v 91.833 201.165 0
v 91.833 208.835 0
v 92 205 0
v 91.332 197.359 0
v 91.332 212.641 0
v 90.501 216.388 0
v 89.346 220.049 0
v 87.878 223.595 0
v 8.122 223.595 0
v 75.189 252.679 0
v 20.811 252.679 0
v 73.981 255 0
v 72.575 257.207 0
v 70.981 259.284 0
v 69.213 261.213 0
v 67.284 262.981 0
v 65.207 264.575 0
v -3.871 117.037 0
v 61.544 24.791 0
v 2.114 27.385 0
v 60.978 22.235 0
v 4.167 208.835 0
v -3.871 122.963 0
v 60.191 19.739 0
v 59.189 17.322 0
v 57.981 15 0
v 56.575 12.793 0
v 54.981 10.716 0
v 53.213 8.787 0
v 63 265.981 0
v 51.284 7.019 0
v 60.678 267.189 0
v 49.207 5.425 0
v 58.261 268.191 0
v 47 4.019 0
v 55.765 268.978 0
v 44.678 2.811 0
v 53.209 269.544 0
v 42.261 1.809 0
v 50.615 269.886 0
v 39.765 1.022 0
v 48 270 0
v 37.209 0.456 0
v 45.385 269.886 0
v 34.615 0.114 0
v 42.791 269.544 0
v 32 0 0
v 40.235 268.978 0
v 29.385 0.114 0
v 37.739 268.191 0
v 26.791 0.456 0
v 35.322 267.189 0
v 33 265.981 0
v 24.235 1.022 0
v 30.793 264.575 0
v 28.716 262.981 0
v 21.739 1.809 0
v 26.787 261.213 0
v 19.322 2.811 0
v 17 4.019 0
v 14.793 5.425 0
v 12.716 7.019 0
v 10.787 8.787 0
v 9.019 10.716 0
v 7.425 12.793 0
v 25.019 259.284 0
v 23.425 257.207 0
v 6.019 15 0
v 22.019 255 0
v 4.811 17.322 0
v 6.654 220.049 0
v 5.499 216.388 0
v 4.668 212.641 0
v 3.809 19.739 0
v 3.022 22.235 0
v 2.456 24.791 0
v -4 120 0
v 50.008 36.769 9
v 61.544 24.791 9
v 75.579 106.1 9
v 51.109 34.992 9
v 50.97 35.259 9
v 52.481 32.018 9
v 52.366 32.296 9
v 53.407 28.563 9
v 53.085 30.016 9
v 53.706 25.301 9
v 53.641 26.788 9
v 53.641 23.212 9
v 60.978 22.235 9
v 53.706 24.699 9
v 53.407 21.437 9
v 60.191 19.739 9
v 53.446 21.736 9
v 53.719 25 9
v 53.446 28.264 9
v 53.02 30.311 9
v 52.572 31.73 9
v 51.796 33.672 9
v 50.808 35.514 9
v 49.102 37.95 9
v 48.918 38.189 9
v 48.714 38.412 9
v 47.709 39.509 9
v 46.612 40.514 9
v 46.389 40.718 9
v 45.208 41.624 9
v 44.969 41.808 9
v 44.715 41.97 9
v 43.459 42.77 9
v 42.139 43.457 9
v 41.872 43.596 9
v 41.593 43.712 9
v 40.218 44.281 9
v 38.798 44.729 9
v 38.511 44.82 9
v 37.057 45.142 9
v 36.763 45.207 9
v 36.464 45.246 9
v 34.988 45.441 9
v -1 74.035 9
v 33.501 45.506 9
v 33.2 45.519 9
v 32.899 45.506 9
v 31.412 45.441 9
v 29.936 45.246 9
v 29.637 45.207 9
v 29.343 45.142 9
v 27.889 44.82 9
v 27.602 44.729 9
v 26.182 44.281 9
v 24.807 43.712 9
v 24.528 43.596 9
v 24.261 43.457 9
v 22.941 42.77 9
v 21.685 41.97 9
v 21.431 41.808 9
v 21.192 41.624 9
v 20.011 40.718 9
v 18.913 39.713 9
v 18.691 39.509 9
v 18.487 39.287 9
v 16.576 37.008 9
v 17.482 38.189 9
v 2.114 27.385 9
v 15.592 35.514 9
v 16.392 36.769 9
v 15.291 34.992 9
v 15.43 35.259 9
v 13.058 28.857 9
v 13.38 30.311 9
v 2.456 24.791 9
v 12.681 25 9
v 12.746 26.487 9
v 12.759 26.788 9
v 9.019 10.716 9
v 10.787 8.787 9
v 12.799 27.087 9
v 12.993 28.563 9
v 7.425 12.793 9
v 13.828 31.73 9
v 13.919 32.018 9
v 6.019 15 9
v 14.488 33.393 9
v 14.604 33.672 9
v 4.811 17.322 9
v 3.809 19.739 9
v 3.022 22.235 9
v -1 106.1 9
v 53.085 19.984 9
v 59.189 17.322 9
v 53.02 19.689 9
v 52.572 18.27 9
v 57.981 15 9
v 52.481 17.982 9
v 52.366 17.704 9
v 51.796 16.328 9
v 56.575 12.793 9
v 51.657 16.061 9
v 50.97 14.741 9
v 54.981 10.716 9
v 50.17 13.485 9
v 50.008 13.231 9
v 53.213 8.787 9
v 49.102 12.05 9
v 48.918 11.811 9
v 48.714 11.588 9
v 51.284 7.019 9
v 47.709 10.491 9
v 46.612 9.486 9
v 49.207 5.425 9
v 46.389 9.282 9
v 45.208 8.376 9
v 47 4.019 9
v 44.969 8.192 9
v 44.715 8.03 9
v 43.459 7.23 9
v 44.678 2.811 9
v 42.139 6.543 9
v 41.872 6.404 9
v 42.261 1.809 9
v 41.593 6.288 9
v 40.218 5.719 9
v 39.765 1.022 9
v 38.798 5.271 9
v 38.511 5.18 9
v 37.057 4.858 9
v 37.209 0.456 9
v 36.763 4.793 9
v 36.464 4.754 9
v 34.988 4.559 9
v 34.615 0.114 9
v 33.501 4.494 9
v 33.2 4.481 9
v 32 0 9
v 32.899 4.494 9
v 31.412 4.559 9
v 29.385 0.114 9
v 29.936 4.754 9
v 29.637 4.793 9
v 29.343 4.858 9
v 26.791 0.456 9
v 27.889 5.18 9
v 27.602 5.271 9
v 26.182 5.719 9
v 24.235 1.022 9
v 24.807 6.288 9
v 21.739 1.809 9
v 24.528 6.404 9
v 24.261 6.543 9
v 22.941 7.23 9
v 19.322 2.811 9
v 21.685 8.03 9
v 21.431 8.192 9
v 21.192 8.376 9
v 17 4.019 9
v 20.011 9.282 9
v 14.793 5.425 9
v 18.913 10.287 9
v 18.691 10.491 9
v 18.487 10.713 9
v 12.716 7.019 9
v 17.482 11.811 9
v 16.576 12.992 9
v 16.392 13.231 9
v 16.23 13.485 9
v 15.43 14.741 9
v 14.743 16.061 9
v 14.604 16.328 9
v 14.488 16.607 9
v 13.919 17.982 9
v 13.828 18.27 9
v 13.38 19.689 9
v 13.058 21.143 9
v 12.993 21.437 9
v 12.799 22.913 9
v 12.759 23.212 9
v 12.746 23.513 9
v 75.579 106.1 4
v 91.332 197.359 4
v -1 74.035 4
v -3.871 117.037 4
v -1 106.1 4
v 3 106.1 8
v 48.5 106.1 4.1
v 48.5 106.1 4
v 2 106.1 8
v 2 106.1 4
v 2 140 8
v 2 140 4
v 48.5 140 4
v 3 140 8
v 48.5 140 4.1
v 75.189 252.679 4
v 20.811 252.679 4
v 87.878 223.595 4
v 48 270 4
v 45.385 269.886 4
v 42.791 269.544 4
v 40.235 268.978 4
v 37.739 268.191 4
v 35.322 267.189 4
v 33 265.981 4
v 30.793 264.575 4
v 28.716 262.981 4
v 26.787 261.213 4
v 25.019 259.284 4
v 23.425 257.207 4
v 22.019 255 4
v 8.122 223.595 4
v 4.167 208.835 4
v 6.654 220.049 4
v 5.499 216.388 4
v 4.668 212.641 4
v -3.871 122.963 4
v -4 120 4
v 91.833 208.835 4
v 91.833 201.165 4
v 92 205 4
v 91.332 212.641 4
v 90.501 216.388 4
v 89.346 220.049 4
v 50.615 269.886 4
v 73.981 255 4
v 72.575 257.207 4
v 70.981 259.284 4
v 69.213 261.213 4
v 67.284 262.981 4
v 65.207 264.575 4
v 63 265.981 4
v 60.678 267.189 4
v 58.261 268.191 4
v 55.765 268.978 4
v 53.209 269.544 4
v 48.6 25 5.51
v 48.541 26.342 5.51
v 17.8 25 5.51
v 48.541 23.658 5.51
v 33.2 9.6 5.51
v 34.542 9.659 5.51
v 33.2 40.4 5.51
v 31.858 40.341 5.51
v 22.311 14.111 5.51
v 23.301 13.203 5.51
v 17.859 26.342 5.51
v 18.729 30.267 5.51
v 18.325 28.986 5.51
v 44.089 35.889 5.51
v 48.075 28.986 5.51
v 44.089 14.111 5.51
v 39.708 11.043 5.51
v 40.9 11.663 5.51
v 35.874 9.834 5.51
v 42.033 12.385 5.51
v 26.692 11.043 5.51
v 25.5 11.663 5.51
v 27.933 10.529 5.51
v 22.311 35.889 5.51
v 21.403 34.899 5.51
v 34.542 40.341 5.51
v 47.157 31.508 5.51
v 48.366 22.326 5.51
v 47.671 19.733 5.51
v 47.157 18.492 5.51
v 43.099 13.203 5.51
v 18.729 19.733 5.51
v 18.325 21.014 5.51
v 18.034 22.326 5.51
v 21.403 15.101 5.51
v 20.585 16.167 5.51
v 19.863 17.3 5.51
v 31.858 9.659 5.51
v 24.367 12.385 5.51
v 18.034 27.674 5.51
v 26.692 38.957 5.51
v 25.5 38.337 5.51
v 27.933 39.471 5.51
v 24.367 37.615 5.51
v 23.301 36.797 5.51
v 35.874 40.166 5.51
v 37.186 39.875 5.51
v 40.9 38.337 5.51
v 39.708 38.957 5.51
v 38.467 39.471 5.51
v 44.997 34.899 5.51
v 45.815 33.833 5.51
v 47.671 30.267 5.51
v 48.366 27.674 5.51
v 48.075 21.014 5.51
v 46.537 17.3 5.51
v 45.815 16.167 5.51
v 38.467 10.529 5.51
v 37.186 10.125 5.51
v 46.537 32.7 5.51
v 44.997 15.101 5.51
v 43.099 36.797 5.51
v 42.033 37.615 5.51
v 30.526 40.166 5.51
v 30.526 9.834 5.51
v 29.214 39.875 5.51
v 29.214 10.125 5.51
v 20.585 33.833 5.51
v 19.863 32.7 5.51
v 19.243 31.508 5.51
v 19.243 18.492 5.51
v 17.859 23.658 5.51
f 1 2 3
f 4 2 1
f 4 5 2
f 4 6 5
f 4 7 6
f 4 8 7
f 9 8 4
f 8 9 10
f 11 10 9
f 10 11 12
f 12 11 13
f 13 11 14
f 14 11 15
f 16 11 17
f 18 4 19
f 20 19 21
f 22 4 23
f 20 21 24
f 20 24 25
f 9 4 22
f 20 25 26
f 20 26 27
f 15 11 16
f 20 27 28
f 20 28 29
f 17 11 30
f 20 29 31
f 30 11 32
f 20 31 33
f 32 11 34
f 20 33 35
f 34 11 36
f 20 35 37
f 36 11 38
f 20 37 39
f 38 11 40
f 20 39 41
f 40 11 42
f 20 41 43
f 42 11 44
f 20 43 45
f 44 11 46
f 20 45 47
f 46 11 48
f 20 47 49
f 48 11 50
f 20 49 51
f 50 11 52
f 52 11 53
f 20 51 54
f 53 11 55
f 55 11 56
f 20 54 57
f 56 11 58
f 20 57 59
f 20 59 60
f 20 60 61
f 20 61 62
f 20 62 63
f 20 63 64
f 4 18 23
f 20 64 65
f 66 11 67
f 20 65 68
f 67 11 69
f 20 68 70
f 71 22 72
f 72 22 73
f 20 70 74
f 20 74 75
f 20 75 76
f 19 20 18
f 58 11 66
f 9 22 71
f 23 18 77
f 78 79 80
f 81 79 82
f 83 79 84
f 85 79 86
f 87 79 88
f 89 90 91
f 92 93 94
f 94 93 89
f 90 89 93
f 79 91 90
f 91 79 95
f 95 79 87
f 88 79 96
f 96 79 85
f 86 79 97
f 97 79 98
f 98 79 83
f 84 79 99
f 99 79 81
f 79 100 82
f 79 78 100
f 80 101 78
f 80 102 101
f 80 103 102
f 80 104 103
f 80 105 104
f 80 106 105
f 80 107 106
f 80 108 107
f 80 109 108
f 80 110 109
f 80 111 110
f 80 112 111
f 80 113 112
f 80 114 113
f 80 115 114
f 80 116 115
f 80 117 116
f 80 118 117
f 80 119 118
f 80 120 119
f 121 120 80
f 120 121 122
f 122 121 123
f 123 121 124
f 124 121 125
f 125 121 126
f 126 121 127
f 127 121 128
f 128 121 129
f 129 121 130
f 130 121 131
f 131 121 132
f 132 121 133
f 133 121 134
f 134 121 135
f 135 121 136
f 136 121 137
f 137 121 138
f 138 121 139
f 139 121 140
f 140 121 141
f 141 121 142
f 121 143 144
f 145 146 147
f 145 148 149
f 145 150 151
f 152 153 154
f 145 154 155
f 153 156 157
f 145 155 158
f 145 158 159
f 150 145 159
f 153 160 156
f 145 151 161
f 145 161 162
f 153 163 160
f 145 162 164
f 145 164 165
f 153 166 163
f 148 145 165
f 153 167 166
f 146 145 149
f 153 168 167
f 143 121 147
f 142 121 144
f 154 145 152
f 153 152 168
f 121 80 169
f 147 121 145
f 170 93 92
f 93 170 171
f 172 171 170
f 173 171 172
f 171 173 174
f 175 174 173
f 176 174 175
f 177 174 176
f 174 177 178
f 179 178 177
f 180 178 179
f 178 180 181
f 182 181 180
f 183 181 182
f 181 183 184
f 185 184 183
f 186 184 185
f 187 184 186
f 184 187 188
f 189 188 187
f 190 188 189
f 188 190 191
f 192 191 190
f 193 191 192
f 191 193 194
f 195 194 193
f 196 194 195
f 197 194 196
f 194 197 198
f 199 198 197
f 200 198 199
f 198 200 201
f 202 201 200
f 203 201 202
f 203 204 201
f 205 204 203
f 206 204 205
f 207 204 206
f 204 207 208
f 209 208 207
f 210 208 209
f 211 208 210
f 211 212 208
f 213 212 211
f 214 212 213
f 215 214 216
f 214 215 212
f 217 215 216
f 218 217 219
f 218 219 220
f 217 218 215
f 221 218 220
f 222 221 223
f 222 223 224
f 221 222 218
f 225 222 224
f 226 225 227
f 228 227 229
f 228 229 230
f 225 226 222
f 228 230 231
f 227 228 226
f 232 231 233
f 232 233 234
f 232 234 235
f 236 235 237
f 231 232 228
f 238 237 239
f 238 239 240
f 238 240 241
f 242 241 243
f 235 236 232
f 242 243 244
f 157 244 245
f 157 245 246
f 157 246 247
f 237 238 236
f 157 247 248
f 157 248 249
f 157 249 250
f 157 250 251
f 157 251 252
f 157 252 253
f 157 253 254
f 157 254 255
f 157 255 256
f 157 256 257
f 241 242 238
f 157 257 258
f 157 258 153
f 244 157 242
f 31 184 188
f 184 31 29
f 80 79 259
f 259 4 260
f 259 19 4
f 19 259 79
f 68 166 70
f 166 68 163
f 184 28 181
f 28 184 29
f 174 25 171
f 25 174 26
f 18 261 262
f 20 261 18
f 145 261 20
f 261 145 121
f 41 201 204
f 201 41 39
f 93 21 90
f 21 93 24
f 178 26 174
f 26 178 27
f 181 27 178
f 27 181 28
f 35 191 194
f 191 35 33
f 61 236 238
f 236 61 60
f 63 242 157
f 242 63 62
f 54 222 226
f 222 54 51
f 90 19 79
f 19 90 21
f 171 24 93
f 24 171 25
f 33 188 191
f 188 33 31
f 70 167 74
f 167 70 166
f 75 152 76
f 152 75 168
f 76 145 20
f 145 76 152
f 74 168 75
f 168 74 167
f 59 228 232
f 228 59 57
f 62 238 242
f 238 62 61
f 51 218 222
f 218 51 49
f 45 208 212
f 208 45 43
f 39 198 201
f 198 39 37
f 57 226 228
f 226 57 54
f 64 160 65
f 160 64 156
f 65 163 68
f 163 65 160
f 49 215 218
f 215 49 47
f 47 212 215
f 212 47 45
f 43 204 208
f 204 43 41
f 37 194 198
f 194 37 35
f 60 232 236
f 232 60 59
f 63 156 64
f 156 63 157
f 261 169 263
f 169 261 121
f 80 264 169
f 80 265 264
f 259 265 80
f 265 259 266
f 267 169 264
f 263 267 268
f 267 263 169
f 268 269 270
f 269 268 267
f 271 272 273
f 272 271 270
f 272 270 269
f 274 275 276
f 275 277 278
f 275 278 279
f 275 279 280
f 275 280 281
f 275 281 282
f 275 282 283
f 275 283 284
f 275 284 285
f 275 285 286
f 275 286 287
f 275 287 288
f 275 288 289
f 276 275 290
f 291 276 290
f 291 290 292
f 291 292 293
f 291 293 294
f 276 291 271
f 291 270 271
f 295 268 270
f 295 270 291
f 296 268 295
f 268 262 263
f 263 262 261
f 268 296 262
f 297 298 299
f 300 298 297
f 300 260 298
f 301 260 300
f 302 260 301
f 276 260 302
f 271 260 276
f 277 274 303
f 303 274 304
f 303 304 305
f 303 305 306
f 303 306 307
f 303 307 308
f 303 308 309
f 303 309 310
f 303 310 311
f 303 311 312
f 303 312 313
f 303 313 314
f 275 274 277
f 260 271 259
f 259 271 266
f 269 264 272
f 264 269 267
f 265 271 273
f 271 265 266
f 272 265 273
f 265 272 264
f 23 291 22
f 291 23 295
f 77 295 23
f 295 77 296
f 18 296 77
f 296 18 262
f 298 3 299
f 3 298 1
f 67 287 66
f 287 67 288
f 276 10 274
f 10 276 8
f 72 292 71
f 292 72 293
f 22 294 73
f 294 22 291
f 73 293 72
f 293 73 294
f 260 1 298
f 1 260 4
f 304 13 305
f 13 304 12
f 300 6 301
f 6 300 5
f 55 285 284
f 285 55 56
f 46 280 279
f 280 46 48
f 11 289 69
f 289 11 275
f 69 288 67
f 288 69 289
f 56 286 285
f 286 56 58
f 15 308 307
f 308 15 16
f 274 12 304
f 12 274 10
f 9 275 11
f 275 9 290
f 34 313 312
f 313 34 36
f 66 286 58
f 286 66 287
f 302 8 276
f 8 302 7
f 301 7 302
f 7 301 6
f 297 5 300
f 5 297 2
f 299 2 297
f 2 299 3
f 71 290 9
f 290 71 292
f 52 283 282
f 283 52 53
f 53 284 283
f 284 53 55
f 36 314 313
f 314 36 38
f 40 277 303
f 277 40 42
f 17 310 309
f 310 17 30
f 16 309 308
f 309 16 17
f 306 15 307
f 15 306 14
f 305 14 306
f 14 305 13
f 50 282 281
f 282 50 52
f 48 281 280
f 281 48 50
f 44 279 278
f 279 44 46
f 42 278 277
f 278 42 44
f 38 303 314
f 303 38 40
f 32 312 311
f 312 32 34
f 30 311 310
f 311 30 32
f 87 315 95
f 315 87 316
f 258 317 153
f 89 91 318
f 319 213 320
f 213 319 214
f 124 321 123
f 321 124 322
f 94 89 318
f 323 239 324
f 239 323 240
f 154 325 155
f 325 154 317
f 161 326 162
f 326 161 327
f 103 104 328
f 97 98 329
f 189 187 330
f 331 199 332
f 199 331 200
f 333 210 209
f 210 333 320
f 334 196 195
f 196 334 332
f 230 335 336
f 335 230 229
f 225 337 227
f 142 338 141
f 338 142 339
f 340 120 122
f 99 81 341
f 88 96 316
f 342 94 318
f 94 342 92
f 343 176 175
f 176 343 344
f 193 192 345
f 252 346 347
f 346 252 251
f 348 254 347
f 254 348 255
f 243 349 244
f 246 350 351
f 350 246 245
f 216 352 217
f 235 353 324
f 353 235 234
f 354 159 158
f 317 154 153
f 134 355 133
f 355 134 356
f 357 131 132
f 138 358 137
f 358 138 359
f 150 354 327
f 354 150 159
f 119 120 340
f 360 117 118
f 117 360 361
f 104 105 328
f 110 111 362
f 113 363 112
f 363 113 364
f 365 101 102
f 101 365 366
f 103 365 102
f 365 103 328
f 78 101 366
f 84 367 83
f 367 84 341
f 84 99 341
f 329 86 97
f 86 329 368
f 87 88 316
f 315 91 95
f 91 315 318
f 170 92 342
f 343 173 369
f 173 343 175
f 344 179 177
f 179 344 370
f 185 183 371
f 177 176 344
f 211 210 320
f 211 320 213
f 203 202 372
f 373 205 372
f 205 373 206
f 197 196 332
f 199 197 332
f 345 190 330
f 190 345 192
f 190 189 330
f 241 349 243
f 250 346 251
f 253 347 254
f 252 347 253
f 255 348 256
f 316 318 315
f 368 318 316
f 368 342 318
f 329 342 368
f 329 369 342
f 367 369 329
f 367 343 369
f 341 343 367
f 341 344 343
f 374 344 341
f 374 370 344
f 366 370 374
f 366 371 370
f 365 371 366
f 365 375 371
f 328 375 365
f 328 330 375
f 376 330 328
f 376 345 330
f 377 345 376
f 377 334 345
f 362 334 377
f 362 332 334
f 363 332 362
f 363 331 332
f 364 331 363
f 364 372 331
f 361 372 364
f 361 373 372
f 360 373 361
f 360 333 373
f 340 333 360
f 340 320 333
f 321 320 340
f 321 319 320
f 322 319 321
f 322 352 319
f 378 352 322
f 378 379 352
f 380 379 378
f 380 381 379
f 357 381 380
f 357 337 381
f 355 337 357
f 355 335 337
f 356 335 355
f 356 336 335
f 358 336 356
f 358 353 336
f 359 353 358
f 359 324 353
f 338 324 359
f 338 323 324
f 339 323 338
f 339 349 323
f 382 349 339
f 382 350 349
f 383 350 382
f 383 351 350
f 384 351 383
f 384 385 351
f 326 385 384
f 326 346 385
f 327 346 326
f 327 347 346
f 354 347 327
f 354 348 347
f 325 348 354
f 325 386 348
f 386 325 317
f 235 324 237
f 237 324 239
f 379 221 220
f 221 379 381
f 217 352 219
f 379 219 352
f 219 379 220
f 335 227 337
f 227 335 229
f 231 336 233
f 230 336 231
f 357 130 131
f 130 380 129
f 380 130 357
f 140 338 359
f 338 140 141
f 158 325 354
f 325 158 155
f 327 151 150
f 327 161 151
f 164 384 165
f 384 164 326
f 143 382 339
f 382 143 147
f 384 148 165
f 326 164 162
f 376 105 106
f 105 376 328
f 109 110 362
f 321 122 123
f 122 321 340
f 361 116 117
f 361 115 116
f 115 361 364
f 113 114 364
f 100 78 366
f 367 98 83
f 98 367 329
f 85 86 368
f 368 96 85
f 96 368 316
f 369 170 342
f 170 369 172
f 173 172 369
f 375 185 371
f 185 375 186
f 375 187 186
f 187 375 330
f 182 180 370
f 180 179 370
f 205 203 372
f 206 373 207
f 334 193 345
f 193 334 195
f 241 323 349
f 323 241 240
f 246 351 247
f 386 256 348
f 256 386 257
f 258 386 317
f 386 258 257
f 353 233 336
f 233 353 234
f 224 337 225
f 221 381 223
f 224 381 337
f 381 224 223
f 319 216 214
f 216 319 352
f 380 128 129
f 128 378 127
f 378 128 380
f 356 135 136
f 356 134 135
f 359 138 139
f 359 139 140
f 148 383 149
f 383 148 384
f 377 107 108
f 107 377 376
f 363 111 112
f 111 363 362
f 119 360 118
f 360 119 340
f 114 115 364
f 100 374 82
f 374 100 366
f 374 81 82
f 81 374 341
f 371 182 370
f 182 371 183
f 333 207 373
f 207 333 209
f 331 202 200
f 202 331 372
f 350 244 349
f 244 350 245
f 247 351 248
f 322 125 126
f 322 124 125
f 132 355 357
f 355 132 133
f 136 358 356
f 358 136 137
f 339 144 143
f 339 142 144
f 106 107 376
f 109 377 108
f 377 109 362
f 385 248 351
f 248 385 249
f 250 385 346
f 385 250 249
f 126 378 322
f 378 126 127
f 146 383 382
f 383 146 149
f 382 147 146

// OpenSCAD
// AUTO-GENERATED by build_insole.py — DO NOT hand-edit.
// Design directives baked in from insole_spec.json:
//   relief zone = heel_med   (aggressive relief)
//   posting     = medial
//   cushion     = heel
//   heel cushion material = soft (print heel in soft TPU 85A)
// Print: firm TPU 95A shell + soft TPU 85A heel/relief on the H2D (dual material).
$fn = 72;

L = 255.0; W = 95.0;
base_t = 4.0; heel_t = 9.0;
relief_x = 33.2; relief_y = 25.0; relief_r = 22.0; relief_d = 3.5;
post_h = 4.0; heel_cup = 0.0;

module outline2d() {
    hull() {
        translate([32, 30])  circle(r=30);   // heel
        translate([30, 120]) circle(r=34);   // arch (medial)
        translate([48, 205]) circle(r=44);   // forefoot
        translate([48, 240]) circle(r=30);   // toes
    }
}

module heel_region() translate([-1, -1, 0]) cube([W + 2, L * 0.42, heel_t + heel_cup + 1]);

module body() {
    // base plate everywhere + extra heel build-up over the heel only
    linear_extrude(height = base_t) outline2d();
    intersection() { linear_extrude(height = heel_t) outline2d(); heel_region(); }
    if (post_h > 0) intersection() {
        // medial wedge: full height at that edge -> 0 at centerline
        hull() {
            translate([2, 45, base_t]) cube([1, 95, post_h]);
            translate([W/2, 45, base_t]) cube([1, 95, 0.1]);
        }
        linear_extrude(height = base_t + heel_t + post_h) outline2d();
    }
    if (heel_cup > 0) intersection() {      // raised heel rim
        difference() {
            linear_extrude(height = heel_t + heel_cup) outline2d();
            translate([0, 0, heel_t]) linear_extrude(height = heel_cup + 1) offset(r = -7) outline2d();
        }
        heel_region();
    }
}

difference() {
    body();
    // relief window: recess into the top surface under the hot spot
    translate([relief_x, relief_y, (9.0 ) - relief_d + 0.01])
        cylinder(r1 = relief_r * 0.7, r2 = relief_r, h = relief_d + 1);
}
